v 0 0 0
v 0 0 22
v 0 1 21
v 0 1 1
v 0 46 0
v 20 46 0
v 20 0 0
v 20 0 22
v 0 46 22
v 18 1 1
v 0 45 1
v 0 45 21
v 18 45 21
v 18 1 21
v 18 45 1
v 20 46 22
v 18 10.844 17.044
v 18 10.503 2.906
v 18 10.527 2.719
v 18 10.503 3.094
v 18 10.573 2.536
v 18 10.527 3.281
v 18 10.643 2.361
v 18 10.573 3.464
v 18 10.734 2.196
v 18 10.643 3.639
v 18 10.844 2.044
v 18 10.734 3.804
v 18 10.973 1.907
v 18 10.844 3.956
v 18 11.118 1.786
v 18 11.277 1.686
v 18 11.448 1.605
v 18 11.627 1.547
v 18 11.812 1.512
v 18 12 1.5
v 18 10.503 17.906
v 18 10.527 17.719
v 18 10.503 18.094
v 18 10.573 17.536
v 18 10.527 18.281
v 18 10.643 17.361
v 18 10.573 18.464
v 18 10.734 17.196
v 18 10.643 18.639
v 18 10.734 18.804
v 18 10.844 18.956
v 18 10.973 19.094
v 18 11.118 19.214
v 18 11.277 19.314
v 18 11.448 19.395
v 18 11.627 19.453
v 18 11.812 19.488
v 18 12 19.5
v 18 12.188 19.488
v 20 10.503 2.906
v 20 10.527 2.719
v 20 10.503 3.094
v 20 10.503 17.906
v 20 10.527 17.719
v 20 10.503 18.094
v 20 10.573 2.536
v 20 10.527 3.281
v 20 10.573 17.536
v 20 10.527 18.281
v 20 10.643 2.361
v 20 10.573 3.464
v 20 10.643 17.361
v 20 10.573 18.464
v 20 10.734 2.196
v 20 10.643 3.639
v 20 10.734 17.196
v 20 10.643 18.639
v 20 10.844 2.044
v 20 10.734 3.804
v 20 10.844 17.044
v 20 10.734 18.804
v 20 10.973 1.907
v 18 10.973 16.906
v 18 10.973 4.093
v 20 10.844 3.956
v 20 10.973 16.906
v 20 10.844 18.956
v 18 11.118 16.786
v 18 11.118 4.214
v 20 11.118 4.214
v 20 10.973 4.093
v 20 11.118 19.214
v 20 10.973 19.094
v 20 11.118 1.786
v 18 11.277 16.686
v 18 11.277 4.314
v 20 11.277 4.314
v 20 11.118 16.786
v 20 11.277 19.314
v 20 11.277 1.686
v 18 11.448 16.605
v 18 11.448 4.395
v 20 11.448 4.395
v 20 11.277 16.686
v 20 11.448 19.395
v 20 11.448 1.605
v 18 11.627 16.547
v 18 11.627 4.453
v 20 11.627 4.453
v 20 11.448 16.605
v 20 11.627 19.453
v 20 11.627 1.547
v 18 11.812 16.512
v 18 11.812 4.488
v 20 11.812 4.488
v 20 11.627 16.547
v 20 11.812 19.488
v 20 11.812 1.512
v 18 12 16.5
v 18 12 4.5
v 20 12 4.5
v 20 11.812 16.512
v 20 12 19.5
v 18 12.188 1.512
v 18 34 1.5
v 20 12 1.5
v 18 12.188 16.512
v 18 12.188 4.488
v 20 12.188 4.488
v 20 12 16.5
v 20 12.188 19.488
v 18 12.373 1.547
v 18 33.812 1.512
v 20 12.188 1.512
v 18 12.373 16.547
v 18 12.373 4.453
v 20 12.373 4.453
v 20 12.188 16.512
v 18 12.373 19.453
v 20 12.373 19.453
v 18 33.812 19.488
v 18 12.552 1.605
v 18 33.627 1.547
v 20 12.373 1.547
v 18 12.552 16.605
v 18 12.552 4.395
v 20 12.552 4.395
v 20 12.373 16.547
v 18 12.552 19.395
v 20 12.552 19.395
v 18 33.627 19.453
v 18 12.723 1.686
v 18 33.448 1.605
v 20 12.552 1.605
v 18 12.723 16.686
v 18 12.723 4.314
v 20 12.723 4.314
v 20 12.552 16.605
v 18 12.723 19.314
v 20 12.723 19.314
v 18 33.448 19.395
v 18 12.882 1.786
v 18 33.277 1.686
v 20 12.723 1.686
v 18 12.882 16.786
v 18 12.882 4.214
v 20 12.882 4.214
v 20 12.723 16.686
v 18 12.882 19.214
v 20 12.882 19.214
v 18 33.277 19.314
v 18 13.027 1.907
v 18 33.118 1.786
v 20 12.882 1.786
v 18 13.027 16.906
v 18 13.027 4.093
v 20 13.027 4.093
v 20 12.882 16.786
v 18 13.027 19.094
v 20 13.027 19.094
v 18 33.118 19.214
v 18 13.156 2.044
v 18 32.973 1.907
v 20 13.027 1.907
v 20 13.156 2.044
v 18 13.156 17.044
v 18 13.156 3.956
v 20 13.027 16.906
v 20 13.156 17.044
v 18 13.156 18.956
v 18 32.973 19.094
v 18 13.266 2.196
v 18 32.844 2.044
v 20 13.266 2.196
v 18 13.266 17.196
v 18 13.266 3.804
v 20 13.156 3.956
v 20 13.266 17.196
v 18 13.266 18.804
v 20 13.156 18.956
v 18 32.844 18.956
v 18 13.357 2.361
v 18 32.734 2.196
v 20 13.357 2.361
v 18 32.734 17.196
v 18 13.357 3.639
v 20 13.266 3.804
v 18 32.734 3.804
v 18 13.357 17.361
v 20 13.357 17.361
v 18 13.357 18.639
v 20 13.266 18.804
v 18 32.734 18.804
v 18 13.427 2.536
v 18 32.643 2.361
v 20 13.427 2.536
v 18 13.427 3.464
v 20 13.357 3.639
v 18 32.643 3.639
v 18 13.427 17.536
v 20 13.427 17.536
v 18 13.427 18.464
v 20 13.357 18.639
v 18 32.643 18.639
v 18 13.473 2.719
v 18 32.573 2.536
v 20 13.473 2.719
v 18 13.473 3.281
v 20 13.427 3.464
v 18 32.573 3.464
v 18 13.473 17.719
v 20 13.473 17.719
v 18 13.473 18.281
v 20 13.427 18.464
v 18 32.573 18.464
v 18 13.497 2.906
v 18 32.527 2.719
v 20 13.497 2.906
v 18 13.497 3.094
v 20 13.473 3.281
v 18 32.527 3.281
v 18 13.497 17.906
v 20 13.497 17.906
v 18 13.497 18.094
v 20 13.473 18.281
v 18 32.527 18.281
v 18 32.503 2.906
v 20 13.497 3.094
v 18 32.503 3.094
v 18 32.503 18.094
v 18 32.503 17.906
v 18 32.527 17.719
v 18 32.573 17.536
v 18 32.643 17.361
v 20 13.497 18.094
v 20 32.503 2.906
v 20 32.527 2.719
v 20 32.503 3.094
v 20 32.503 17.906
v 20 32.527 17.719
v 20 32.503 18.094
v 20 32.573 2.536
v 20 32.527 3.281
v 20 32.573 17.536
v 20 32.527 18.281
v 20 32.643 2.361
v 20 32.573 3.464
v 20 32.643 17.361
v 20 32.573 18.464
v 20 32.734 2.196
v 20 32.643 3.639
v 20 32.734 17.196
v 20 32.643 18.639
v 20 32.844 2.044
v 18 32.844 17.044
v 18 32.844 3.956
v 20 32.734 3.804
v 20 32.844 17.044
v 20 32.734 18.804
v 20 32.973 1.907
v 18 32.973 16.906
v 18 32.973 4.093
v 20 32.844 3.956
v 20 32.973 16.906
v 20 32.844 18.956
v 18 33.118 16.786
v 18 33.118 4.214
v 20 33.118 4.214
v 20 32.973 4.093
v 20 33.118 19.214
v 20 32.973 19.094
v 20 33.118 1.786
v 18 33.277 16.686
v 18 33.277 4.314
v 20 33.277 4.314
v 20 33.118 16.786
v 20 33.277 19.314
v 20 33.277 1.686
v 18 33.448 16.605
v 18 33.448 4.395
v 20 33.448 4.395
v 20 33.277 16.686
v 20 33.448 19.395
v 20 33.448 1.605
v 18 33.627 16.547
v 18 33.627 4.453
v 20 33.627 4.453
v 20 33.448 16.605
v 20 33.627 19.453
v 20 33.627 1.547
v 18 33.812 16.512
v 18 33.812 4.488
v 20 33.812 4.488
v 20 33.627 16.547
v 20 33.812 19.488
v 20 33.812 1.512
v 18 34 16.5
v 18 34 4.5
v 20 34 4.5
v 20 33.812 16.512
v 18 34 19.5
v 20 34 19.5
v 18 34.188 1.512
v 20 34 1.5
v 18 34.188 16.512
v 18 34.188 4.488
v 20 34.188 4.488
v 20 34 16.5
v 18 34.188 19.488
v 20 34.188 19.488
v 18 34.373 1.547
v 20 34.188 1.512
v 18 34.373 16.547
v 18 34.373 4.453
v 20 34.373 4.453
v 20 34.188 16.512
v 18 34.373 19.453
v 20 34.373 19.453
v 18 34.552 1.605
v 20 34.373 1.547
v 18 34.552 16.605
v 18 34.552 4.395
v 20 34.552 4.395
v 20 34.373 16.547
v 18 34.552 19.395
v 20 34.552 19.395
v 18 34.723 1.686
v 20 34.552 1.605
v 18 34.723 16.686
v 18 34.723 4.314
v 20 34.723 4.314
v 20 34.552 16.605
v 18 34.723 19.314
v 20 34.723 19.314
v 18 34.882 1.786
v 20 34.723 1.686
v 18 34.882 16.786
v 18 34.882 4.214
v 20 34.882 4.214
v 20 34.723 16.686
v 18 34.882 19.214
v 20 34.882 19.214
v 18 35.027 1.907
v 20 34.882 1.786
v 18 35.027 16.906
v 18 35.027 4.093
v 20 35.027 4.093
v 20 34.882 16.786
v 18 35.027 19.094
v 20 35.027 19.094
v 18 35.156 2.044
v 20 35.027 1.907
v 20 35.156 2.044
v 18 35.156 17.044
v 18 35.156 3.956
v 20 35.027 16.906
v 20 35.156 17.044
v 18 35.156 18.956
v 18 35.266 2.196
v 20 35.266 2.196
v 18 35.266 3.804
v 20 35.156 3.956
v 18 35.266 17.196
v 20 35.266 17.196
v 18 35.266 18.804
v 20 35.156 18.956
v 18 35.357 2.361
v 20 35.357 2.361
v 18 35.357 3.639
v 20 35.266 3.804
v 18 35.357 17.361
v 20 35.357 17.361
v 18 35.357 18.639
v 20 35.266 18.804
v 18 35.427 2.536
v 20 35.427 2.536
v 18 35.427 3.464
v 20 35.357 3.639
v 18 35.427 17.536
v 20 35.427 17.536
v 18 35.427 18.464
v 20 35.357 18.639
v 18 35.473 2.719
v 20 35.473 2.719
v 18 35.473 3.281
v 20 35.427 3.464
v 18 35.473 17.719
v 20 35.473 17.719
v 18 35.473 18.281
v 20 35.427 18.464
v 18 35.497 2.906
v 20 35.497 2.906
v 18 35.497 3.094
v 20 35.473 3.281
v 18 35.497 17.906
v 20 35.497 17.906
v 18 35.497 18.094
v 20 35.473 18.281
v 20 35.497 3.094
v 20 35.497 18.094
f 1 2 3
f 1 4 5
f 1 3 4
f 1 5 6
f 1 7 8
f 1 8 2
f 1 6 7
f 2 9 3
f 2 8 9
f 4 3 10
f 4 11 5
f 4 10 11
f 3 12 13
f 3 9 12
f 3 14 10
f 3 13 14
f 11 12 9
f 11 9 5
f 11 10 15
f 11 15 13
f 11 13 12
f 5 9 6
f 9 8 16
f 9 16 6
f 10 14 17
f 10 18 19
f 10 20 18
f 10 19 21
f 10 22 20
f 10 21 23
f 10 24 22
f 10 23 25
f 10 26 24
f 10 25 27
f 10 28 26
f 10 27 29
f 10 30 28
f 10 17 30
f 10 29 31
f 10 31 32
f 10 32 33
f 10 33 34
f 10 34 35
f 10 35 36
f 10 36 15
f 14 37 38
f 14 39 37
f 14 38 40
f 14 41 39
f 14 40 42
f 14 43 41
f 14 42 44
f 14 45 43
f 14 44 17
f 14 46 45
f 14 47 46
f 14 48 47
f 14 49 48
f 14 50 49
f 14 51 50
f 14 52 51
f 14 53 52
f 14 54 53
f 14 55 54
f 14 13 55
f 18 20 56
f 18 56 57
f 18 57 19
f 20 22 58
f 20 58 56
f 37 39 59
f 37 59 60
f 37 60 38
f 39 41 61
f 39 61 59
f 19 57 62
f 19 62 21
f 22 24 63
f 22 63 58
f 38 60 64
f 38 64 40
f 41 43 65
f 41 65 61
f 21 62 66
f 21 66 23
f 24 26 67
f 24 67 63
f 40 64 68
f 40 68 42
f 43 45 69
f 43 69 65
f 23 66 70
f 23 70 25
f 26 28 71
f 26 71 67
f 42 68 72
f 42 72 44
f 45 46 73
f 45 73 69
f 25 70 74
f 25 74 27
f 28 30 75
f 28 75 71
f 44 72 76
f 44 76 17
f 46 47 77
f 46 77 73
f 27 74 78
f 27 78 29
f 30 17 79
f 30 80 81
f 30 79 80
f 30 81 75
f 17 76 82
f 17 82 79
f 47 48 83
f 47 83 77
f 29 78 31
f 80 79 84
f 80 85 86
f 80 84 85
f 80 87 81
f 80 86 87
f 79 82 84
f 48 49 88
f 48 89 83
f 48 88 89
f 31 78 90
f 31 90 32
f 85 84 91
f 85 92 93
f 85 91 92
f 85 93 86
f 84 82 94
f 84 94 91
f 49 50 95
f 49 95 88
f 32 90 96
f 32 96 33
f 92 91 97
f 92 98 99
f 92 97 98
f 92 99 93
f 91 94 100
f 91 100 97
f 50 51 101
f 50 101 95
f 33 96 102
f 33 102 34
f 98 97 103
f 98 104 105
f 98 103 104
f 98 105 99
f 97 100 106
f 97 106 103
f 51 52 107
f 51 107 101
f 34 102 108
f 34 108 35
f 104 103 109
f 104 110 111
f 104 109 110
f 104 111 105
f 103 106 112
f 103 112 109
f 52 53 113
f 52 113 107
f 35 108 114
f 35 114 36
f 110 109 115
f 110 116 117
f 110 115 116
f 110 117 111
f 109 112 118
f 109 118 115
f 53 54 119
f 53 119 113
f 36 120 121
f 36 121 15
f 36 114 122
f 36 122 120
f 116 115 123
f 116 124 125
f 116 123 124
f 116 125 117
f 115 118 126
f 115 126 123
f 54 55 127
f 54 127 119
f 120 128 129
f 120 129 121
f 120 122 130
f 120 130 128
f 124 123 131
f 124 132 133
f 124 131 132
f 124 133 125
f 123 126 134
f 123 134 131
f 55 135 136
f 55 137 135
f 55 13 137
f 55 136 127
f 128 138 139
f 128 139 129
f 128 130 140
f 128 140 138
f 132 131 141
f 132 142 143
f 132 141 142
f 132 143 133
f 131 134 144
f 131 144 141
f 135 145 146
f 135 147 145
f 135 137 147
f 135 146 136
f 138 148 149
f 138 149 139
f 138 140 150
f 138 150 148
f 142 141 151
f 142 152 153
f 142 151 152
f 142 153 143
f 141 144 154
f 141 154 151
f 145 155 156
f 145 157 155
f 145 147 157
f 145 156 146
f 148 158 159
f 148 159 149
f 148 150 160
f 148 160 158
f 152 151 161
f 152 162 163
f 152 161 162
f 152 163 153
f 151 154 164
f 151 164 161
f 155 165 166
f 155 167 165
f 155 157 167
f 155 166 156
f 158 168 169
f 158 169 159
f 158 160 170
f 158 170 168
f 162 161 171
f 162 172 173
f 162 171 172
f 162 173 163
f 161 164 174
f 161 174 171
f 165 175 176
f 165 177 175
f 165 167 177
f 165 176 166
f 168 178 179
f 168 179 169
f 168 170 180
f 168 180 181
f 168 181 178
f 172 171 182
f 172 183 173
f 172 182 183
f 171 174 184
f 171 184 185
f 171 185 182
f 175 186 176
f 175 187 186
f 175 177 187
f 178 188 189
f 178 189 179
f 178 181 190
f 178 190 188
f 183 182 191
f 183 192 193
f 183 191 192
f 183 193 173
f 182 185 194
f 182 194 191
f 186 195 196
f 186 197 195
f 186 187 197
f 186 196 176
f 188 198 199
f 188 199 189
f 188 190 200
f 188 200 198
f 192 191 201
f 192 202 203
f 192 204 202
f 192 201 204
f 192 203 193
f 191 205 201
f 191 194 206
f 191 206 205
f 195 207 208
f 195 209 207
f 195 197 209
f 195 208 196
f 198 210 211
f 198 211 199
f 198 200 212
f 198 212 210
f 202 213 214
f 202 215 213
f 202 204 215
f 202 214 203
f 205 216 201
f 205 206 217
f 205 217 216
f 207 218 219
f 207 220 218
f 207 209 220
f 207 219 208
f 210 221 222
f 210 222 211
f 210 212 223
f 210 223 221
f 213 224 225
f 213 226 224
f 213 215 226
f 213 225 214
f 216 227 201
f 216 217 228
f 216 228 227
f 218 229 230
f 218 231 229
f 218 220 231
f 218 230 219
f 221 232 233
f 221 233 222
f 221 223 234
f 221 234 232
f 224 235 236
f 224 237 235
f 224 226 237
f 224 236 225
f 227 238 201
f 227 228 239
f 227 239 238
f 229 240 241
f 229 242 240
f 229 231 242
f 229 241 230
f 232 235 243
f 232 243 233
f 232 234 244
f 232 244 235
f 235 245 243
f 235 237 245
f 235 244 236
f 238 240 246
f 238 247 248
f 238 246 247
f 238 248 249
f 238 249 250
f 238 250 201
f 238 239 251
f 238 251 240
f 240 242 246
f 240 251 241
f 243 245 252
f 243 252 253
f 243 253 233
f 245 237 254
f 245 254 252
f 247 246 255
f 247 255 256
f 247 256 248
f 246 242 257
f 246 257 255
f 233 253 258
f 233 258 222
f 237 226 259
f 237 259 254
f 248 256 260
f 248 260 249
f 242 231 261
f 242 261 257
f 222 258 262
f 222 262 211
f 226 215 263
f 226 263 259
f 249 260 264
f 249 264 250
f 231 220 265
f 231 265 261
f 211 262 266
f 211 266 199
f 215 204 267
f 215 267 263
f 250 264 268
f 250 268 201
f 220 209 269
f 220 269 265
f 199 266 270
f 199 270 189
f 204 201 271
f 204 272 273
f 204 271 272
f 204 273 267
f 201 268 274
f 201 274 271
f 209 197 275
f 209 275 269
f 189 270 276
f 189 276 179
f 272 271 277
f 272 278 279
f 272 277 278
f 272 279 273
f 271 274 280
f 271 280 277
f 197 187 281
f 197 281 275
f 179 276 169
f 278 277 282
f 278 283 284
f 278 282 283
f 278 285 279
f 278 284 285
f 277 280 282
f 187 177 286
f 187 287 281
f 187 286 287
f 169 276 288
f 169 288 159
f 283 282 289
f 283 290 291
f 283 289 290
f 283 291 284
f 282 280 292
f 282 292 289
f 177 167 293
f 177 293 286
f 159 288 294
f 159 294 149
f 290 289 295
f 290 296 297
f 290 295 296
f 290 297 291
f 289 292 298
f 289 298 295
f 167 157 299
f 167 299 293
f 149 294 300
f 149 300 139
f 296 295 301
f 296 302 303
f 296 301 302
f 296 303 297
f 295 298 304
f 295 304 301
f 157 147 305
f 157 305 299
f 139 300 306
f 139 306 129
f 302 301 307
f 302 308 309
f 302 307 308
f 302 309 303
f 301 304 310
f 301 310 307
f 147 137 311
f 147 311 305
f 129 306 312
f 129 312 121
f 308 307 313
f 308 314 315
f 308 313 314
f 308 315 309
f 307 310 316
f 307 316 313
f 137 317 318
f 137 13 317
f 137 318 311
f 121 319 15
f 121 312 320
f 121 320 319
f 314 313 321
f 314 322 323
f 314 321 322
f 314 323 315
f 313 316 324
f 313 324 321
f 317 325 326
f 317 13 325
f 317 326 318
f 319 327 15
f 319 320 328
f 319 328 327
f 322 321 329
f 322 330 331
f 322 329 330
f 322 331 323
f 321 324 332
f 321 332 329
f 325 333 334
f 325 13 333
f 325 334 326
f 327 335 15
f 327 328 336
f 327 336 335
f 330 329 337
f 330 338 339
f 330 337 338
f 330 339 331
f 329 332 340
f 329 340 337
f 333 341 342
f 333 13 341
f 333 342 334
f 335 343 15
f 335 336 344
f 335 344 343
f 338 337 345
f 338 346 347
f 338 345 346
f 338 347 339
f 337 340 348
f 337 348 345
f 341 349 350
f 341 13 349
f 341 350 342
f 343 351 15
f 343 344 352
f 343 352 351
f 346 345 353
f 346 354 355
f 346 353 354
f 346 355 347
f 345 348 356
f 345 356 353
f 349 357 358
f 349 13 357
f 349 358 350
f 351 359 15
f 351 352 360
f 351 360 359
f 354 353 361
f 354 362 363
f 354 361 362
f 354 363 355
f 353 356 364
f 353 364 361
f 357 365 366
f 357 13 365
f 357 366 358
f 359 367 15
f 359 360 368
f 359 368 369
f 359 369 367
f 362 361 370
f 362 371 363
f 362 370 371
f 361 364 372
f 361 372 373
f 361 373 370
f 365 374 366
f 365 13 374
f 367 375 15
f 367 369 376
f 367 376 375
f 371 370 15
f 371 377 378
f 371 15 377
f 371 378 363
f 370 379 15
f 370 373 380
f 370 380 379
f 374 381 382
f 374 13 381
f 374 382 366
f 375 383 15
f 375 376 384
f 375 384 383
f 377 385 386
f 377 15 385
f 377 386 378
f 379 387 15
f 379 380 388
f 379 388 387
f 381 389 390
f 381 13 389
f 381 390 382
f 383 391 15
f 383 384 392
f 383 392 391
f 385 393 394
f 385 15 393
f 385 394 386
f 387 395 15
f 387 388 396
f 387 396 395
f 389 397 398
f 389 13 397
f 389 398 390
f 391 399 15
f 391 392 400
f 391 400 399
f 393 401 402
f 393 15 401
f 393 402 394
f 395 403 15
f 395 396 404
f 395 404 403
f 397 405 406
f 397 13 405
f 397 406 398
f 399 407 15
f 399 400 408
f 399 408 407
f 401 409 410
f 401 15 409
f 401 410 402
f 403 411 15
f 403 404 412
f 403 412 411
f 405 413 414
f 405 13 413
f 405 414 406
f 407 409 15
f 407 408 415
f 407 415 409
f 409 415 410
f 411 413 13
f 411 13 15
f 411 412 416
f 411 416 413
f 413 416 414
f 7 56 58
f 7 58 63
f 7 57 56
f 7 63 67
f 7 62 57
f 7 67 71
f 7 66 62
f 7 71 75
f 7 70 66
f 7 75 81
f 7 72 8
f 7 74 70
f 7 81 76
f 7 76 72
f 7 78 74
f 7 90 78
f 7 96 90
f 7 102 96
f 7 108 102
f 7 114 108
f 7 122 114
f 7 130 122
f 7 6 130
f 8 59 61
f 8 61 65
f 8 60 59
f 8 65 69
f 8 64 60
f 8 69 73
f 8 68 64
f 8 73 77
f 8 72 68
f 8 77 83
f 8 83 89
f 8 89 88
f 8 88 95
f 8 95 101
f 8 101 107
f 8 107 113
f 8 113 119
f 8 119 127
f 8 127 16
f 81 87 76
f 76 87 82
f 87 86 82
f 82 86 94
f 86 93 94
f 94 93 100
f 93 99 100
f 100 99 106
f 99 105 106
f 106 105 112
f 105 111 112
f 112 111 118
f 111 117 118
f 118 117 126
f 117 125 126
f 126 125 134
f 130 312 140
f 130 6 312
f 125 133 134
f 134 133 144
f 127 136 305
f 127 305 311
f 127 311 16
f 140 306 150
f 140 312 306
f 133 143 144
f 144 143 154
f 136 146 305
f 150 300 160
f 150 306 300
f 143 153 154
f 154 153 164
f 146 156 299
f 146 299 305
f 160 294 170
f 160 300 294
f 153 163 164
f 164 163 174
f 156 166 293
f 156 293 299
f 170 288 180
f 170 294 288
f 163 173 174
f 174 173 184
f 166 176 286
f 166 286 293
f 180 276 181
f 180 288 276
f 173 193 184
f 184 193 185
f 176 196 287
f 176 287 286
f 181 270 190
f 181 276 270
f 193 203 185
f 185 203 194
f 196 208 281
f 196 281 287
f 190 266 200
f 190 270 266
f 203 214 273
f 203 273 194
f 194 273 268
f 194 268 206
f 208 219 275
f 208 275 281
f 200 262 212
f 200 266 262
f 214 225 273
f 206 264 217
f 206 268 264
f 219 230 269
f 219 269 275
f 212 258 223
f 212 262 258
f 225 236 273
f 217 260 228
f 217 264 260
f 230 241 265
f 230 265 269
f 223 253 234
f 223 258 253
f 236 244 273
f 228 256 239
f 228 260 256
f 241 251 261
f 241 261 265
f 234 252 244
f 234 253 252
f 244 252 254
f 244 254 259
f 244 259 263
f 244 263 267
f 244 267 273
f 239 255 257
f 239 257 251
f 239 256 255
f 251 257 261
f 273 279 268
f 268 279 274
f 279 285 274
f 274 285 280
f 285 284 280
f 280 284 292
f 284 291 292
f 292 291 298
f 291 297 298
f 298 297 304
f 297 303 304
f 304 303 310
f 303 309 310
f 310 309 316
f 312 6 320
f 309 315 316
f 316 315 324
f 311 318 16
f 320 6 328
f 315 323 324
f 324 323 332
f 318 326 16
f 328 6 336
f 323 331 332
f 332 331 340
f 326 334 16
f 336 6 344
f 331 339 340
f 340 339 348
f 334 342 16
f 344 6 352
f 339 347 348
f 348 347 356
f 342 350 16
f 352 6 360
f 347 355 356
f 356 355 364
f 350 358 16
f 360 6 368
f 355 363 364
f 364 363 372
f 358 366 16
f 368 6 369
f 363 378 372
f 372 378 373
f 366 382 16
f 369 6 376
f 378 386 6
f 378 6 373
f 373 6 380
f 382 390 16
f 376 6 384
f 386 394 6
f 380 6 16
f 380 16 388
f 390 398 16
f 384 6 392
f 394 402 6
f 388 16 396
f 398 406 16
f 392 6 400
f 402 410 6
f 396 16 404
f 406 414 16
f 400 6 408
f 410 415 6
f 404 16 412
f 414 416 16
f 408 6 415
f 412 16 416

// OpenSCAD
// n-Cell 18650 battery box

// TODO: make wall=1
// TODO: combine sidecover bolt hole logic
// TODO: get rid of extra holes
// TODO: figure out attachment to arrbot2 and breadboard
// TODO: move cover attachment to four corners, independent of cells.
// TODO: put insulation block on main unit for corner attachment.

$fn=50;

WALL=2;
ENDWALL=4;
BLEN=80;
BDIAM=20;
HDIAM=3.0;

totlen=BLEN+ENDWALL*2;

module borehole() {
  #cylinder(BDIAM+WALL,d=3);
  #translate([0,0,1]) cylinder(BDIAM+WALL-1,d=7);

}


module attachment_holes(n) {
  for (i=[0:n-1]) {
    translate([0,i*(BDIAM+WALL),0]) {
      // upper sidecover attachment
      translate([0,BDIAM/2+WALL,BDIAM-WALL-0]) rotate([0,90,0]) cylinder(totlen,d=3);
      // lower sidecover attachment
      translate([0,BDIAM/2+WALL,WALL+1]) rotate([0,90,0]) cylinder(totlen,d=3);
    }
  }
}


module basebox(n) {
  for (i=[0:n-1]) {
    translate([0,i*(BDIAM+WALL),0]) {
      difference() {
        // outside
        cube([totlen,BDIAM+WALL*2,BDIAM+WALL]);
        // top cut
        translate([ENDWALL,0,BDIAM/2+WALL]) cube([BLEN,BDIAM+WALL*2,BDIAM/2+WALL]);
        // battery cut
        translate([ENDWALL,BDIAM/2+WALL,BDIAM/2+WALL])rotate([0,90,0]) cylinder(BLEN,d=BDIAM);
        // bolt holes
        translate([0,BDIAM/2+WALL,BDIAM/2+WALL])rotate([0,90,0]) cylinder(BLEN+2*ENDWALL,d=HDIAM);

        // make sidecover bolt holes match this.  TODO: make into module?
        // TODO: figure out which sidecover bolt holes are best and delete the rest.
        // upper sidecover attachment
        translate([0,BDIAM/2+WALL,BDIAM-WALL-0]) rotate([0,90,0]) cylinder(totlen,d=3);
        // lower sidecover attachment
        translate([0,BDIAM/2+WALL,WALL+1]) rotate([0,90,0]) cylinder(totlen,d=3);
        
        
        
        
      }
    }
  }
}

module box(n) {
  difference() {
    basebox(n);
    for (i=[0:n-1]) {
      translate([0,i*(BDIAM+WALL),0]) {
        for (qq=[-1:1]) {
          // borehole on center
          translate([totlen/2+qq*totlen/3,(BDIAM+WALL)/2,0]) borehole();
        }
        if (i<n-1) {
            // make sidecover bolt holes match this.  TODO: make into module?
            // upper sidecover attachment
            translate([0,(BDIAM+WALL+WALL/2),BDIAM-WALL-0]) rotate([0,90,0]) cylinder(totlen,d=3);
            // lower sidecover attachment
            translate([0,(BDIAM+WALL+WALL/2),WALL+1]) rotate([0,90,0]) cylinder(totlen,d=3);
          for (qq=[-1:1]) {
            // borehole on edge
            translate([totlen/2+qq*totlen/3,(BDIAM+WALL+WALL/2),0]) borehole();
          }
        }
      }
    }
  }
}


module sidecover(n) {
  yy=n*(BDIAM+WALL)+WALL;
  xx=20;
  zz=BDIAM+WALL;
  w1=1;
  w2=2*w1;
  difference() {
    union() {
      difference() {
        cube([xx,yy,zz]);
        translate([0,1,1]) cube([xx-w2,yy-w2,zz-w2]);
      }
      for (i=[0:n-1]) {
        //#translate([0,i*(BDIAM+WALL)+BDIAM/2,w1])  cube([xx,4,4]);
        //#translate([0,i*(BDIAM+WALL)+BDIAM/2,zz-w1-5])  cube([xx,4,5]);
      }
    }
    attachment_holes(n);
  }  
}

module main() {
  //box(2);
  sidecover(2);
}


main();
